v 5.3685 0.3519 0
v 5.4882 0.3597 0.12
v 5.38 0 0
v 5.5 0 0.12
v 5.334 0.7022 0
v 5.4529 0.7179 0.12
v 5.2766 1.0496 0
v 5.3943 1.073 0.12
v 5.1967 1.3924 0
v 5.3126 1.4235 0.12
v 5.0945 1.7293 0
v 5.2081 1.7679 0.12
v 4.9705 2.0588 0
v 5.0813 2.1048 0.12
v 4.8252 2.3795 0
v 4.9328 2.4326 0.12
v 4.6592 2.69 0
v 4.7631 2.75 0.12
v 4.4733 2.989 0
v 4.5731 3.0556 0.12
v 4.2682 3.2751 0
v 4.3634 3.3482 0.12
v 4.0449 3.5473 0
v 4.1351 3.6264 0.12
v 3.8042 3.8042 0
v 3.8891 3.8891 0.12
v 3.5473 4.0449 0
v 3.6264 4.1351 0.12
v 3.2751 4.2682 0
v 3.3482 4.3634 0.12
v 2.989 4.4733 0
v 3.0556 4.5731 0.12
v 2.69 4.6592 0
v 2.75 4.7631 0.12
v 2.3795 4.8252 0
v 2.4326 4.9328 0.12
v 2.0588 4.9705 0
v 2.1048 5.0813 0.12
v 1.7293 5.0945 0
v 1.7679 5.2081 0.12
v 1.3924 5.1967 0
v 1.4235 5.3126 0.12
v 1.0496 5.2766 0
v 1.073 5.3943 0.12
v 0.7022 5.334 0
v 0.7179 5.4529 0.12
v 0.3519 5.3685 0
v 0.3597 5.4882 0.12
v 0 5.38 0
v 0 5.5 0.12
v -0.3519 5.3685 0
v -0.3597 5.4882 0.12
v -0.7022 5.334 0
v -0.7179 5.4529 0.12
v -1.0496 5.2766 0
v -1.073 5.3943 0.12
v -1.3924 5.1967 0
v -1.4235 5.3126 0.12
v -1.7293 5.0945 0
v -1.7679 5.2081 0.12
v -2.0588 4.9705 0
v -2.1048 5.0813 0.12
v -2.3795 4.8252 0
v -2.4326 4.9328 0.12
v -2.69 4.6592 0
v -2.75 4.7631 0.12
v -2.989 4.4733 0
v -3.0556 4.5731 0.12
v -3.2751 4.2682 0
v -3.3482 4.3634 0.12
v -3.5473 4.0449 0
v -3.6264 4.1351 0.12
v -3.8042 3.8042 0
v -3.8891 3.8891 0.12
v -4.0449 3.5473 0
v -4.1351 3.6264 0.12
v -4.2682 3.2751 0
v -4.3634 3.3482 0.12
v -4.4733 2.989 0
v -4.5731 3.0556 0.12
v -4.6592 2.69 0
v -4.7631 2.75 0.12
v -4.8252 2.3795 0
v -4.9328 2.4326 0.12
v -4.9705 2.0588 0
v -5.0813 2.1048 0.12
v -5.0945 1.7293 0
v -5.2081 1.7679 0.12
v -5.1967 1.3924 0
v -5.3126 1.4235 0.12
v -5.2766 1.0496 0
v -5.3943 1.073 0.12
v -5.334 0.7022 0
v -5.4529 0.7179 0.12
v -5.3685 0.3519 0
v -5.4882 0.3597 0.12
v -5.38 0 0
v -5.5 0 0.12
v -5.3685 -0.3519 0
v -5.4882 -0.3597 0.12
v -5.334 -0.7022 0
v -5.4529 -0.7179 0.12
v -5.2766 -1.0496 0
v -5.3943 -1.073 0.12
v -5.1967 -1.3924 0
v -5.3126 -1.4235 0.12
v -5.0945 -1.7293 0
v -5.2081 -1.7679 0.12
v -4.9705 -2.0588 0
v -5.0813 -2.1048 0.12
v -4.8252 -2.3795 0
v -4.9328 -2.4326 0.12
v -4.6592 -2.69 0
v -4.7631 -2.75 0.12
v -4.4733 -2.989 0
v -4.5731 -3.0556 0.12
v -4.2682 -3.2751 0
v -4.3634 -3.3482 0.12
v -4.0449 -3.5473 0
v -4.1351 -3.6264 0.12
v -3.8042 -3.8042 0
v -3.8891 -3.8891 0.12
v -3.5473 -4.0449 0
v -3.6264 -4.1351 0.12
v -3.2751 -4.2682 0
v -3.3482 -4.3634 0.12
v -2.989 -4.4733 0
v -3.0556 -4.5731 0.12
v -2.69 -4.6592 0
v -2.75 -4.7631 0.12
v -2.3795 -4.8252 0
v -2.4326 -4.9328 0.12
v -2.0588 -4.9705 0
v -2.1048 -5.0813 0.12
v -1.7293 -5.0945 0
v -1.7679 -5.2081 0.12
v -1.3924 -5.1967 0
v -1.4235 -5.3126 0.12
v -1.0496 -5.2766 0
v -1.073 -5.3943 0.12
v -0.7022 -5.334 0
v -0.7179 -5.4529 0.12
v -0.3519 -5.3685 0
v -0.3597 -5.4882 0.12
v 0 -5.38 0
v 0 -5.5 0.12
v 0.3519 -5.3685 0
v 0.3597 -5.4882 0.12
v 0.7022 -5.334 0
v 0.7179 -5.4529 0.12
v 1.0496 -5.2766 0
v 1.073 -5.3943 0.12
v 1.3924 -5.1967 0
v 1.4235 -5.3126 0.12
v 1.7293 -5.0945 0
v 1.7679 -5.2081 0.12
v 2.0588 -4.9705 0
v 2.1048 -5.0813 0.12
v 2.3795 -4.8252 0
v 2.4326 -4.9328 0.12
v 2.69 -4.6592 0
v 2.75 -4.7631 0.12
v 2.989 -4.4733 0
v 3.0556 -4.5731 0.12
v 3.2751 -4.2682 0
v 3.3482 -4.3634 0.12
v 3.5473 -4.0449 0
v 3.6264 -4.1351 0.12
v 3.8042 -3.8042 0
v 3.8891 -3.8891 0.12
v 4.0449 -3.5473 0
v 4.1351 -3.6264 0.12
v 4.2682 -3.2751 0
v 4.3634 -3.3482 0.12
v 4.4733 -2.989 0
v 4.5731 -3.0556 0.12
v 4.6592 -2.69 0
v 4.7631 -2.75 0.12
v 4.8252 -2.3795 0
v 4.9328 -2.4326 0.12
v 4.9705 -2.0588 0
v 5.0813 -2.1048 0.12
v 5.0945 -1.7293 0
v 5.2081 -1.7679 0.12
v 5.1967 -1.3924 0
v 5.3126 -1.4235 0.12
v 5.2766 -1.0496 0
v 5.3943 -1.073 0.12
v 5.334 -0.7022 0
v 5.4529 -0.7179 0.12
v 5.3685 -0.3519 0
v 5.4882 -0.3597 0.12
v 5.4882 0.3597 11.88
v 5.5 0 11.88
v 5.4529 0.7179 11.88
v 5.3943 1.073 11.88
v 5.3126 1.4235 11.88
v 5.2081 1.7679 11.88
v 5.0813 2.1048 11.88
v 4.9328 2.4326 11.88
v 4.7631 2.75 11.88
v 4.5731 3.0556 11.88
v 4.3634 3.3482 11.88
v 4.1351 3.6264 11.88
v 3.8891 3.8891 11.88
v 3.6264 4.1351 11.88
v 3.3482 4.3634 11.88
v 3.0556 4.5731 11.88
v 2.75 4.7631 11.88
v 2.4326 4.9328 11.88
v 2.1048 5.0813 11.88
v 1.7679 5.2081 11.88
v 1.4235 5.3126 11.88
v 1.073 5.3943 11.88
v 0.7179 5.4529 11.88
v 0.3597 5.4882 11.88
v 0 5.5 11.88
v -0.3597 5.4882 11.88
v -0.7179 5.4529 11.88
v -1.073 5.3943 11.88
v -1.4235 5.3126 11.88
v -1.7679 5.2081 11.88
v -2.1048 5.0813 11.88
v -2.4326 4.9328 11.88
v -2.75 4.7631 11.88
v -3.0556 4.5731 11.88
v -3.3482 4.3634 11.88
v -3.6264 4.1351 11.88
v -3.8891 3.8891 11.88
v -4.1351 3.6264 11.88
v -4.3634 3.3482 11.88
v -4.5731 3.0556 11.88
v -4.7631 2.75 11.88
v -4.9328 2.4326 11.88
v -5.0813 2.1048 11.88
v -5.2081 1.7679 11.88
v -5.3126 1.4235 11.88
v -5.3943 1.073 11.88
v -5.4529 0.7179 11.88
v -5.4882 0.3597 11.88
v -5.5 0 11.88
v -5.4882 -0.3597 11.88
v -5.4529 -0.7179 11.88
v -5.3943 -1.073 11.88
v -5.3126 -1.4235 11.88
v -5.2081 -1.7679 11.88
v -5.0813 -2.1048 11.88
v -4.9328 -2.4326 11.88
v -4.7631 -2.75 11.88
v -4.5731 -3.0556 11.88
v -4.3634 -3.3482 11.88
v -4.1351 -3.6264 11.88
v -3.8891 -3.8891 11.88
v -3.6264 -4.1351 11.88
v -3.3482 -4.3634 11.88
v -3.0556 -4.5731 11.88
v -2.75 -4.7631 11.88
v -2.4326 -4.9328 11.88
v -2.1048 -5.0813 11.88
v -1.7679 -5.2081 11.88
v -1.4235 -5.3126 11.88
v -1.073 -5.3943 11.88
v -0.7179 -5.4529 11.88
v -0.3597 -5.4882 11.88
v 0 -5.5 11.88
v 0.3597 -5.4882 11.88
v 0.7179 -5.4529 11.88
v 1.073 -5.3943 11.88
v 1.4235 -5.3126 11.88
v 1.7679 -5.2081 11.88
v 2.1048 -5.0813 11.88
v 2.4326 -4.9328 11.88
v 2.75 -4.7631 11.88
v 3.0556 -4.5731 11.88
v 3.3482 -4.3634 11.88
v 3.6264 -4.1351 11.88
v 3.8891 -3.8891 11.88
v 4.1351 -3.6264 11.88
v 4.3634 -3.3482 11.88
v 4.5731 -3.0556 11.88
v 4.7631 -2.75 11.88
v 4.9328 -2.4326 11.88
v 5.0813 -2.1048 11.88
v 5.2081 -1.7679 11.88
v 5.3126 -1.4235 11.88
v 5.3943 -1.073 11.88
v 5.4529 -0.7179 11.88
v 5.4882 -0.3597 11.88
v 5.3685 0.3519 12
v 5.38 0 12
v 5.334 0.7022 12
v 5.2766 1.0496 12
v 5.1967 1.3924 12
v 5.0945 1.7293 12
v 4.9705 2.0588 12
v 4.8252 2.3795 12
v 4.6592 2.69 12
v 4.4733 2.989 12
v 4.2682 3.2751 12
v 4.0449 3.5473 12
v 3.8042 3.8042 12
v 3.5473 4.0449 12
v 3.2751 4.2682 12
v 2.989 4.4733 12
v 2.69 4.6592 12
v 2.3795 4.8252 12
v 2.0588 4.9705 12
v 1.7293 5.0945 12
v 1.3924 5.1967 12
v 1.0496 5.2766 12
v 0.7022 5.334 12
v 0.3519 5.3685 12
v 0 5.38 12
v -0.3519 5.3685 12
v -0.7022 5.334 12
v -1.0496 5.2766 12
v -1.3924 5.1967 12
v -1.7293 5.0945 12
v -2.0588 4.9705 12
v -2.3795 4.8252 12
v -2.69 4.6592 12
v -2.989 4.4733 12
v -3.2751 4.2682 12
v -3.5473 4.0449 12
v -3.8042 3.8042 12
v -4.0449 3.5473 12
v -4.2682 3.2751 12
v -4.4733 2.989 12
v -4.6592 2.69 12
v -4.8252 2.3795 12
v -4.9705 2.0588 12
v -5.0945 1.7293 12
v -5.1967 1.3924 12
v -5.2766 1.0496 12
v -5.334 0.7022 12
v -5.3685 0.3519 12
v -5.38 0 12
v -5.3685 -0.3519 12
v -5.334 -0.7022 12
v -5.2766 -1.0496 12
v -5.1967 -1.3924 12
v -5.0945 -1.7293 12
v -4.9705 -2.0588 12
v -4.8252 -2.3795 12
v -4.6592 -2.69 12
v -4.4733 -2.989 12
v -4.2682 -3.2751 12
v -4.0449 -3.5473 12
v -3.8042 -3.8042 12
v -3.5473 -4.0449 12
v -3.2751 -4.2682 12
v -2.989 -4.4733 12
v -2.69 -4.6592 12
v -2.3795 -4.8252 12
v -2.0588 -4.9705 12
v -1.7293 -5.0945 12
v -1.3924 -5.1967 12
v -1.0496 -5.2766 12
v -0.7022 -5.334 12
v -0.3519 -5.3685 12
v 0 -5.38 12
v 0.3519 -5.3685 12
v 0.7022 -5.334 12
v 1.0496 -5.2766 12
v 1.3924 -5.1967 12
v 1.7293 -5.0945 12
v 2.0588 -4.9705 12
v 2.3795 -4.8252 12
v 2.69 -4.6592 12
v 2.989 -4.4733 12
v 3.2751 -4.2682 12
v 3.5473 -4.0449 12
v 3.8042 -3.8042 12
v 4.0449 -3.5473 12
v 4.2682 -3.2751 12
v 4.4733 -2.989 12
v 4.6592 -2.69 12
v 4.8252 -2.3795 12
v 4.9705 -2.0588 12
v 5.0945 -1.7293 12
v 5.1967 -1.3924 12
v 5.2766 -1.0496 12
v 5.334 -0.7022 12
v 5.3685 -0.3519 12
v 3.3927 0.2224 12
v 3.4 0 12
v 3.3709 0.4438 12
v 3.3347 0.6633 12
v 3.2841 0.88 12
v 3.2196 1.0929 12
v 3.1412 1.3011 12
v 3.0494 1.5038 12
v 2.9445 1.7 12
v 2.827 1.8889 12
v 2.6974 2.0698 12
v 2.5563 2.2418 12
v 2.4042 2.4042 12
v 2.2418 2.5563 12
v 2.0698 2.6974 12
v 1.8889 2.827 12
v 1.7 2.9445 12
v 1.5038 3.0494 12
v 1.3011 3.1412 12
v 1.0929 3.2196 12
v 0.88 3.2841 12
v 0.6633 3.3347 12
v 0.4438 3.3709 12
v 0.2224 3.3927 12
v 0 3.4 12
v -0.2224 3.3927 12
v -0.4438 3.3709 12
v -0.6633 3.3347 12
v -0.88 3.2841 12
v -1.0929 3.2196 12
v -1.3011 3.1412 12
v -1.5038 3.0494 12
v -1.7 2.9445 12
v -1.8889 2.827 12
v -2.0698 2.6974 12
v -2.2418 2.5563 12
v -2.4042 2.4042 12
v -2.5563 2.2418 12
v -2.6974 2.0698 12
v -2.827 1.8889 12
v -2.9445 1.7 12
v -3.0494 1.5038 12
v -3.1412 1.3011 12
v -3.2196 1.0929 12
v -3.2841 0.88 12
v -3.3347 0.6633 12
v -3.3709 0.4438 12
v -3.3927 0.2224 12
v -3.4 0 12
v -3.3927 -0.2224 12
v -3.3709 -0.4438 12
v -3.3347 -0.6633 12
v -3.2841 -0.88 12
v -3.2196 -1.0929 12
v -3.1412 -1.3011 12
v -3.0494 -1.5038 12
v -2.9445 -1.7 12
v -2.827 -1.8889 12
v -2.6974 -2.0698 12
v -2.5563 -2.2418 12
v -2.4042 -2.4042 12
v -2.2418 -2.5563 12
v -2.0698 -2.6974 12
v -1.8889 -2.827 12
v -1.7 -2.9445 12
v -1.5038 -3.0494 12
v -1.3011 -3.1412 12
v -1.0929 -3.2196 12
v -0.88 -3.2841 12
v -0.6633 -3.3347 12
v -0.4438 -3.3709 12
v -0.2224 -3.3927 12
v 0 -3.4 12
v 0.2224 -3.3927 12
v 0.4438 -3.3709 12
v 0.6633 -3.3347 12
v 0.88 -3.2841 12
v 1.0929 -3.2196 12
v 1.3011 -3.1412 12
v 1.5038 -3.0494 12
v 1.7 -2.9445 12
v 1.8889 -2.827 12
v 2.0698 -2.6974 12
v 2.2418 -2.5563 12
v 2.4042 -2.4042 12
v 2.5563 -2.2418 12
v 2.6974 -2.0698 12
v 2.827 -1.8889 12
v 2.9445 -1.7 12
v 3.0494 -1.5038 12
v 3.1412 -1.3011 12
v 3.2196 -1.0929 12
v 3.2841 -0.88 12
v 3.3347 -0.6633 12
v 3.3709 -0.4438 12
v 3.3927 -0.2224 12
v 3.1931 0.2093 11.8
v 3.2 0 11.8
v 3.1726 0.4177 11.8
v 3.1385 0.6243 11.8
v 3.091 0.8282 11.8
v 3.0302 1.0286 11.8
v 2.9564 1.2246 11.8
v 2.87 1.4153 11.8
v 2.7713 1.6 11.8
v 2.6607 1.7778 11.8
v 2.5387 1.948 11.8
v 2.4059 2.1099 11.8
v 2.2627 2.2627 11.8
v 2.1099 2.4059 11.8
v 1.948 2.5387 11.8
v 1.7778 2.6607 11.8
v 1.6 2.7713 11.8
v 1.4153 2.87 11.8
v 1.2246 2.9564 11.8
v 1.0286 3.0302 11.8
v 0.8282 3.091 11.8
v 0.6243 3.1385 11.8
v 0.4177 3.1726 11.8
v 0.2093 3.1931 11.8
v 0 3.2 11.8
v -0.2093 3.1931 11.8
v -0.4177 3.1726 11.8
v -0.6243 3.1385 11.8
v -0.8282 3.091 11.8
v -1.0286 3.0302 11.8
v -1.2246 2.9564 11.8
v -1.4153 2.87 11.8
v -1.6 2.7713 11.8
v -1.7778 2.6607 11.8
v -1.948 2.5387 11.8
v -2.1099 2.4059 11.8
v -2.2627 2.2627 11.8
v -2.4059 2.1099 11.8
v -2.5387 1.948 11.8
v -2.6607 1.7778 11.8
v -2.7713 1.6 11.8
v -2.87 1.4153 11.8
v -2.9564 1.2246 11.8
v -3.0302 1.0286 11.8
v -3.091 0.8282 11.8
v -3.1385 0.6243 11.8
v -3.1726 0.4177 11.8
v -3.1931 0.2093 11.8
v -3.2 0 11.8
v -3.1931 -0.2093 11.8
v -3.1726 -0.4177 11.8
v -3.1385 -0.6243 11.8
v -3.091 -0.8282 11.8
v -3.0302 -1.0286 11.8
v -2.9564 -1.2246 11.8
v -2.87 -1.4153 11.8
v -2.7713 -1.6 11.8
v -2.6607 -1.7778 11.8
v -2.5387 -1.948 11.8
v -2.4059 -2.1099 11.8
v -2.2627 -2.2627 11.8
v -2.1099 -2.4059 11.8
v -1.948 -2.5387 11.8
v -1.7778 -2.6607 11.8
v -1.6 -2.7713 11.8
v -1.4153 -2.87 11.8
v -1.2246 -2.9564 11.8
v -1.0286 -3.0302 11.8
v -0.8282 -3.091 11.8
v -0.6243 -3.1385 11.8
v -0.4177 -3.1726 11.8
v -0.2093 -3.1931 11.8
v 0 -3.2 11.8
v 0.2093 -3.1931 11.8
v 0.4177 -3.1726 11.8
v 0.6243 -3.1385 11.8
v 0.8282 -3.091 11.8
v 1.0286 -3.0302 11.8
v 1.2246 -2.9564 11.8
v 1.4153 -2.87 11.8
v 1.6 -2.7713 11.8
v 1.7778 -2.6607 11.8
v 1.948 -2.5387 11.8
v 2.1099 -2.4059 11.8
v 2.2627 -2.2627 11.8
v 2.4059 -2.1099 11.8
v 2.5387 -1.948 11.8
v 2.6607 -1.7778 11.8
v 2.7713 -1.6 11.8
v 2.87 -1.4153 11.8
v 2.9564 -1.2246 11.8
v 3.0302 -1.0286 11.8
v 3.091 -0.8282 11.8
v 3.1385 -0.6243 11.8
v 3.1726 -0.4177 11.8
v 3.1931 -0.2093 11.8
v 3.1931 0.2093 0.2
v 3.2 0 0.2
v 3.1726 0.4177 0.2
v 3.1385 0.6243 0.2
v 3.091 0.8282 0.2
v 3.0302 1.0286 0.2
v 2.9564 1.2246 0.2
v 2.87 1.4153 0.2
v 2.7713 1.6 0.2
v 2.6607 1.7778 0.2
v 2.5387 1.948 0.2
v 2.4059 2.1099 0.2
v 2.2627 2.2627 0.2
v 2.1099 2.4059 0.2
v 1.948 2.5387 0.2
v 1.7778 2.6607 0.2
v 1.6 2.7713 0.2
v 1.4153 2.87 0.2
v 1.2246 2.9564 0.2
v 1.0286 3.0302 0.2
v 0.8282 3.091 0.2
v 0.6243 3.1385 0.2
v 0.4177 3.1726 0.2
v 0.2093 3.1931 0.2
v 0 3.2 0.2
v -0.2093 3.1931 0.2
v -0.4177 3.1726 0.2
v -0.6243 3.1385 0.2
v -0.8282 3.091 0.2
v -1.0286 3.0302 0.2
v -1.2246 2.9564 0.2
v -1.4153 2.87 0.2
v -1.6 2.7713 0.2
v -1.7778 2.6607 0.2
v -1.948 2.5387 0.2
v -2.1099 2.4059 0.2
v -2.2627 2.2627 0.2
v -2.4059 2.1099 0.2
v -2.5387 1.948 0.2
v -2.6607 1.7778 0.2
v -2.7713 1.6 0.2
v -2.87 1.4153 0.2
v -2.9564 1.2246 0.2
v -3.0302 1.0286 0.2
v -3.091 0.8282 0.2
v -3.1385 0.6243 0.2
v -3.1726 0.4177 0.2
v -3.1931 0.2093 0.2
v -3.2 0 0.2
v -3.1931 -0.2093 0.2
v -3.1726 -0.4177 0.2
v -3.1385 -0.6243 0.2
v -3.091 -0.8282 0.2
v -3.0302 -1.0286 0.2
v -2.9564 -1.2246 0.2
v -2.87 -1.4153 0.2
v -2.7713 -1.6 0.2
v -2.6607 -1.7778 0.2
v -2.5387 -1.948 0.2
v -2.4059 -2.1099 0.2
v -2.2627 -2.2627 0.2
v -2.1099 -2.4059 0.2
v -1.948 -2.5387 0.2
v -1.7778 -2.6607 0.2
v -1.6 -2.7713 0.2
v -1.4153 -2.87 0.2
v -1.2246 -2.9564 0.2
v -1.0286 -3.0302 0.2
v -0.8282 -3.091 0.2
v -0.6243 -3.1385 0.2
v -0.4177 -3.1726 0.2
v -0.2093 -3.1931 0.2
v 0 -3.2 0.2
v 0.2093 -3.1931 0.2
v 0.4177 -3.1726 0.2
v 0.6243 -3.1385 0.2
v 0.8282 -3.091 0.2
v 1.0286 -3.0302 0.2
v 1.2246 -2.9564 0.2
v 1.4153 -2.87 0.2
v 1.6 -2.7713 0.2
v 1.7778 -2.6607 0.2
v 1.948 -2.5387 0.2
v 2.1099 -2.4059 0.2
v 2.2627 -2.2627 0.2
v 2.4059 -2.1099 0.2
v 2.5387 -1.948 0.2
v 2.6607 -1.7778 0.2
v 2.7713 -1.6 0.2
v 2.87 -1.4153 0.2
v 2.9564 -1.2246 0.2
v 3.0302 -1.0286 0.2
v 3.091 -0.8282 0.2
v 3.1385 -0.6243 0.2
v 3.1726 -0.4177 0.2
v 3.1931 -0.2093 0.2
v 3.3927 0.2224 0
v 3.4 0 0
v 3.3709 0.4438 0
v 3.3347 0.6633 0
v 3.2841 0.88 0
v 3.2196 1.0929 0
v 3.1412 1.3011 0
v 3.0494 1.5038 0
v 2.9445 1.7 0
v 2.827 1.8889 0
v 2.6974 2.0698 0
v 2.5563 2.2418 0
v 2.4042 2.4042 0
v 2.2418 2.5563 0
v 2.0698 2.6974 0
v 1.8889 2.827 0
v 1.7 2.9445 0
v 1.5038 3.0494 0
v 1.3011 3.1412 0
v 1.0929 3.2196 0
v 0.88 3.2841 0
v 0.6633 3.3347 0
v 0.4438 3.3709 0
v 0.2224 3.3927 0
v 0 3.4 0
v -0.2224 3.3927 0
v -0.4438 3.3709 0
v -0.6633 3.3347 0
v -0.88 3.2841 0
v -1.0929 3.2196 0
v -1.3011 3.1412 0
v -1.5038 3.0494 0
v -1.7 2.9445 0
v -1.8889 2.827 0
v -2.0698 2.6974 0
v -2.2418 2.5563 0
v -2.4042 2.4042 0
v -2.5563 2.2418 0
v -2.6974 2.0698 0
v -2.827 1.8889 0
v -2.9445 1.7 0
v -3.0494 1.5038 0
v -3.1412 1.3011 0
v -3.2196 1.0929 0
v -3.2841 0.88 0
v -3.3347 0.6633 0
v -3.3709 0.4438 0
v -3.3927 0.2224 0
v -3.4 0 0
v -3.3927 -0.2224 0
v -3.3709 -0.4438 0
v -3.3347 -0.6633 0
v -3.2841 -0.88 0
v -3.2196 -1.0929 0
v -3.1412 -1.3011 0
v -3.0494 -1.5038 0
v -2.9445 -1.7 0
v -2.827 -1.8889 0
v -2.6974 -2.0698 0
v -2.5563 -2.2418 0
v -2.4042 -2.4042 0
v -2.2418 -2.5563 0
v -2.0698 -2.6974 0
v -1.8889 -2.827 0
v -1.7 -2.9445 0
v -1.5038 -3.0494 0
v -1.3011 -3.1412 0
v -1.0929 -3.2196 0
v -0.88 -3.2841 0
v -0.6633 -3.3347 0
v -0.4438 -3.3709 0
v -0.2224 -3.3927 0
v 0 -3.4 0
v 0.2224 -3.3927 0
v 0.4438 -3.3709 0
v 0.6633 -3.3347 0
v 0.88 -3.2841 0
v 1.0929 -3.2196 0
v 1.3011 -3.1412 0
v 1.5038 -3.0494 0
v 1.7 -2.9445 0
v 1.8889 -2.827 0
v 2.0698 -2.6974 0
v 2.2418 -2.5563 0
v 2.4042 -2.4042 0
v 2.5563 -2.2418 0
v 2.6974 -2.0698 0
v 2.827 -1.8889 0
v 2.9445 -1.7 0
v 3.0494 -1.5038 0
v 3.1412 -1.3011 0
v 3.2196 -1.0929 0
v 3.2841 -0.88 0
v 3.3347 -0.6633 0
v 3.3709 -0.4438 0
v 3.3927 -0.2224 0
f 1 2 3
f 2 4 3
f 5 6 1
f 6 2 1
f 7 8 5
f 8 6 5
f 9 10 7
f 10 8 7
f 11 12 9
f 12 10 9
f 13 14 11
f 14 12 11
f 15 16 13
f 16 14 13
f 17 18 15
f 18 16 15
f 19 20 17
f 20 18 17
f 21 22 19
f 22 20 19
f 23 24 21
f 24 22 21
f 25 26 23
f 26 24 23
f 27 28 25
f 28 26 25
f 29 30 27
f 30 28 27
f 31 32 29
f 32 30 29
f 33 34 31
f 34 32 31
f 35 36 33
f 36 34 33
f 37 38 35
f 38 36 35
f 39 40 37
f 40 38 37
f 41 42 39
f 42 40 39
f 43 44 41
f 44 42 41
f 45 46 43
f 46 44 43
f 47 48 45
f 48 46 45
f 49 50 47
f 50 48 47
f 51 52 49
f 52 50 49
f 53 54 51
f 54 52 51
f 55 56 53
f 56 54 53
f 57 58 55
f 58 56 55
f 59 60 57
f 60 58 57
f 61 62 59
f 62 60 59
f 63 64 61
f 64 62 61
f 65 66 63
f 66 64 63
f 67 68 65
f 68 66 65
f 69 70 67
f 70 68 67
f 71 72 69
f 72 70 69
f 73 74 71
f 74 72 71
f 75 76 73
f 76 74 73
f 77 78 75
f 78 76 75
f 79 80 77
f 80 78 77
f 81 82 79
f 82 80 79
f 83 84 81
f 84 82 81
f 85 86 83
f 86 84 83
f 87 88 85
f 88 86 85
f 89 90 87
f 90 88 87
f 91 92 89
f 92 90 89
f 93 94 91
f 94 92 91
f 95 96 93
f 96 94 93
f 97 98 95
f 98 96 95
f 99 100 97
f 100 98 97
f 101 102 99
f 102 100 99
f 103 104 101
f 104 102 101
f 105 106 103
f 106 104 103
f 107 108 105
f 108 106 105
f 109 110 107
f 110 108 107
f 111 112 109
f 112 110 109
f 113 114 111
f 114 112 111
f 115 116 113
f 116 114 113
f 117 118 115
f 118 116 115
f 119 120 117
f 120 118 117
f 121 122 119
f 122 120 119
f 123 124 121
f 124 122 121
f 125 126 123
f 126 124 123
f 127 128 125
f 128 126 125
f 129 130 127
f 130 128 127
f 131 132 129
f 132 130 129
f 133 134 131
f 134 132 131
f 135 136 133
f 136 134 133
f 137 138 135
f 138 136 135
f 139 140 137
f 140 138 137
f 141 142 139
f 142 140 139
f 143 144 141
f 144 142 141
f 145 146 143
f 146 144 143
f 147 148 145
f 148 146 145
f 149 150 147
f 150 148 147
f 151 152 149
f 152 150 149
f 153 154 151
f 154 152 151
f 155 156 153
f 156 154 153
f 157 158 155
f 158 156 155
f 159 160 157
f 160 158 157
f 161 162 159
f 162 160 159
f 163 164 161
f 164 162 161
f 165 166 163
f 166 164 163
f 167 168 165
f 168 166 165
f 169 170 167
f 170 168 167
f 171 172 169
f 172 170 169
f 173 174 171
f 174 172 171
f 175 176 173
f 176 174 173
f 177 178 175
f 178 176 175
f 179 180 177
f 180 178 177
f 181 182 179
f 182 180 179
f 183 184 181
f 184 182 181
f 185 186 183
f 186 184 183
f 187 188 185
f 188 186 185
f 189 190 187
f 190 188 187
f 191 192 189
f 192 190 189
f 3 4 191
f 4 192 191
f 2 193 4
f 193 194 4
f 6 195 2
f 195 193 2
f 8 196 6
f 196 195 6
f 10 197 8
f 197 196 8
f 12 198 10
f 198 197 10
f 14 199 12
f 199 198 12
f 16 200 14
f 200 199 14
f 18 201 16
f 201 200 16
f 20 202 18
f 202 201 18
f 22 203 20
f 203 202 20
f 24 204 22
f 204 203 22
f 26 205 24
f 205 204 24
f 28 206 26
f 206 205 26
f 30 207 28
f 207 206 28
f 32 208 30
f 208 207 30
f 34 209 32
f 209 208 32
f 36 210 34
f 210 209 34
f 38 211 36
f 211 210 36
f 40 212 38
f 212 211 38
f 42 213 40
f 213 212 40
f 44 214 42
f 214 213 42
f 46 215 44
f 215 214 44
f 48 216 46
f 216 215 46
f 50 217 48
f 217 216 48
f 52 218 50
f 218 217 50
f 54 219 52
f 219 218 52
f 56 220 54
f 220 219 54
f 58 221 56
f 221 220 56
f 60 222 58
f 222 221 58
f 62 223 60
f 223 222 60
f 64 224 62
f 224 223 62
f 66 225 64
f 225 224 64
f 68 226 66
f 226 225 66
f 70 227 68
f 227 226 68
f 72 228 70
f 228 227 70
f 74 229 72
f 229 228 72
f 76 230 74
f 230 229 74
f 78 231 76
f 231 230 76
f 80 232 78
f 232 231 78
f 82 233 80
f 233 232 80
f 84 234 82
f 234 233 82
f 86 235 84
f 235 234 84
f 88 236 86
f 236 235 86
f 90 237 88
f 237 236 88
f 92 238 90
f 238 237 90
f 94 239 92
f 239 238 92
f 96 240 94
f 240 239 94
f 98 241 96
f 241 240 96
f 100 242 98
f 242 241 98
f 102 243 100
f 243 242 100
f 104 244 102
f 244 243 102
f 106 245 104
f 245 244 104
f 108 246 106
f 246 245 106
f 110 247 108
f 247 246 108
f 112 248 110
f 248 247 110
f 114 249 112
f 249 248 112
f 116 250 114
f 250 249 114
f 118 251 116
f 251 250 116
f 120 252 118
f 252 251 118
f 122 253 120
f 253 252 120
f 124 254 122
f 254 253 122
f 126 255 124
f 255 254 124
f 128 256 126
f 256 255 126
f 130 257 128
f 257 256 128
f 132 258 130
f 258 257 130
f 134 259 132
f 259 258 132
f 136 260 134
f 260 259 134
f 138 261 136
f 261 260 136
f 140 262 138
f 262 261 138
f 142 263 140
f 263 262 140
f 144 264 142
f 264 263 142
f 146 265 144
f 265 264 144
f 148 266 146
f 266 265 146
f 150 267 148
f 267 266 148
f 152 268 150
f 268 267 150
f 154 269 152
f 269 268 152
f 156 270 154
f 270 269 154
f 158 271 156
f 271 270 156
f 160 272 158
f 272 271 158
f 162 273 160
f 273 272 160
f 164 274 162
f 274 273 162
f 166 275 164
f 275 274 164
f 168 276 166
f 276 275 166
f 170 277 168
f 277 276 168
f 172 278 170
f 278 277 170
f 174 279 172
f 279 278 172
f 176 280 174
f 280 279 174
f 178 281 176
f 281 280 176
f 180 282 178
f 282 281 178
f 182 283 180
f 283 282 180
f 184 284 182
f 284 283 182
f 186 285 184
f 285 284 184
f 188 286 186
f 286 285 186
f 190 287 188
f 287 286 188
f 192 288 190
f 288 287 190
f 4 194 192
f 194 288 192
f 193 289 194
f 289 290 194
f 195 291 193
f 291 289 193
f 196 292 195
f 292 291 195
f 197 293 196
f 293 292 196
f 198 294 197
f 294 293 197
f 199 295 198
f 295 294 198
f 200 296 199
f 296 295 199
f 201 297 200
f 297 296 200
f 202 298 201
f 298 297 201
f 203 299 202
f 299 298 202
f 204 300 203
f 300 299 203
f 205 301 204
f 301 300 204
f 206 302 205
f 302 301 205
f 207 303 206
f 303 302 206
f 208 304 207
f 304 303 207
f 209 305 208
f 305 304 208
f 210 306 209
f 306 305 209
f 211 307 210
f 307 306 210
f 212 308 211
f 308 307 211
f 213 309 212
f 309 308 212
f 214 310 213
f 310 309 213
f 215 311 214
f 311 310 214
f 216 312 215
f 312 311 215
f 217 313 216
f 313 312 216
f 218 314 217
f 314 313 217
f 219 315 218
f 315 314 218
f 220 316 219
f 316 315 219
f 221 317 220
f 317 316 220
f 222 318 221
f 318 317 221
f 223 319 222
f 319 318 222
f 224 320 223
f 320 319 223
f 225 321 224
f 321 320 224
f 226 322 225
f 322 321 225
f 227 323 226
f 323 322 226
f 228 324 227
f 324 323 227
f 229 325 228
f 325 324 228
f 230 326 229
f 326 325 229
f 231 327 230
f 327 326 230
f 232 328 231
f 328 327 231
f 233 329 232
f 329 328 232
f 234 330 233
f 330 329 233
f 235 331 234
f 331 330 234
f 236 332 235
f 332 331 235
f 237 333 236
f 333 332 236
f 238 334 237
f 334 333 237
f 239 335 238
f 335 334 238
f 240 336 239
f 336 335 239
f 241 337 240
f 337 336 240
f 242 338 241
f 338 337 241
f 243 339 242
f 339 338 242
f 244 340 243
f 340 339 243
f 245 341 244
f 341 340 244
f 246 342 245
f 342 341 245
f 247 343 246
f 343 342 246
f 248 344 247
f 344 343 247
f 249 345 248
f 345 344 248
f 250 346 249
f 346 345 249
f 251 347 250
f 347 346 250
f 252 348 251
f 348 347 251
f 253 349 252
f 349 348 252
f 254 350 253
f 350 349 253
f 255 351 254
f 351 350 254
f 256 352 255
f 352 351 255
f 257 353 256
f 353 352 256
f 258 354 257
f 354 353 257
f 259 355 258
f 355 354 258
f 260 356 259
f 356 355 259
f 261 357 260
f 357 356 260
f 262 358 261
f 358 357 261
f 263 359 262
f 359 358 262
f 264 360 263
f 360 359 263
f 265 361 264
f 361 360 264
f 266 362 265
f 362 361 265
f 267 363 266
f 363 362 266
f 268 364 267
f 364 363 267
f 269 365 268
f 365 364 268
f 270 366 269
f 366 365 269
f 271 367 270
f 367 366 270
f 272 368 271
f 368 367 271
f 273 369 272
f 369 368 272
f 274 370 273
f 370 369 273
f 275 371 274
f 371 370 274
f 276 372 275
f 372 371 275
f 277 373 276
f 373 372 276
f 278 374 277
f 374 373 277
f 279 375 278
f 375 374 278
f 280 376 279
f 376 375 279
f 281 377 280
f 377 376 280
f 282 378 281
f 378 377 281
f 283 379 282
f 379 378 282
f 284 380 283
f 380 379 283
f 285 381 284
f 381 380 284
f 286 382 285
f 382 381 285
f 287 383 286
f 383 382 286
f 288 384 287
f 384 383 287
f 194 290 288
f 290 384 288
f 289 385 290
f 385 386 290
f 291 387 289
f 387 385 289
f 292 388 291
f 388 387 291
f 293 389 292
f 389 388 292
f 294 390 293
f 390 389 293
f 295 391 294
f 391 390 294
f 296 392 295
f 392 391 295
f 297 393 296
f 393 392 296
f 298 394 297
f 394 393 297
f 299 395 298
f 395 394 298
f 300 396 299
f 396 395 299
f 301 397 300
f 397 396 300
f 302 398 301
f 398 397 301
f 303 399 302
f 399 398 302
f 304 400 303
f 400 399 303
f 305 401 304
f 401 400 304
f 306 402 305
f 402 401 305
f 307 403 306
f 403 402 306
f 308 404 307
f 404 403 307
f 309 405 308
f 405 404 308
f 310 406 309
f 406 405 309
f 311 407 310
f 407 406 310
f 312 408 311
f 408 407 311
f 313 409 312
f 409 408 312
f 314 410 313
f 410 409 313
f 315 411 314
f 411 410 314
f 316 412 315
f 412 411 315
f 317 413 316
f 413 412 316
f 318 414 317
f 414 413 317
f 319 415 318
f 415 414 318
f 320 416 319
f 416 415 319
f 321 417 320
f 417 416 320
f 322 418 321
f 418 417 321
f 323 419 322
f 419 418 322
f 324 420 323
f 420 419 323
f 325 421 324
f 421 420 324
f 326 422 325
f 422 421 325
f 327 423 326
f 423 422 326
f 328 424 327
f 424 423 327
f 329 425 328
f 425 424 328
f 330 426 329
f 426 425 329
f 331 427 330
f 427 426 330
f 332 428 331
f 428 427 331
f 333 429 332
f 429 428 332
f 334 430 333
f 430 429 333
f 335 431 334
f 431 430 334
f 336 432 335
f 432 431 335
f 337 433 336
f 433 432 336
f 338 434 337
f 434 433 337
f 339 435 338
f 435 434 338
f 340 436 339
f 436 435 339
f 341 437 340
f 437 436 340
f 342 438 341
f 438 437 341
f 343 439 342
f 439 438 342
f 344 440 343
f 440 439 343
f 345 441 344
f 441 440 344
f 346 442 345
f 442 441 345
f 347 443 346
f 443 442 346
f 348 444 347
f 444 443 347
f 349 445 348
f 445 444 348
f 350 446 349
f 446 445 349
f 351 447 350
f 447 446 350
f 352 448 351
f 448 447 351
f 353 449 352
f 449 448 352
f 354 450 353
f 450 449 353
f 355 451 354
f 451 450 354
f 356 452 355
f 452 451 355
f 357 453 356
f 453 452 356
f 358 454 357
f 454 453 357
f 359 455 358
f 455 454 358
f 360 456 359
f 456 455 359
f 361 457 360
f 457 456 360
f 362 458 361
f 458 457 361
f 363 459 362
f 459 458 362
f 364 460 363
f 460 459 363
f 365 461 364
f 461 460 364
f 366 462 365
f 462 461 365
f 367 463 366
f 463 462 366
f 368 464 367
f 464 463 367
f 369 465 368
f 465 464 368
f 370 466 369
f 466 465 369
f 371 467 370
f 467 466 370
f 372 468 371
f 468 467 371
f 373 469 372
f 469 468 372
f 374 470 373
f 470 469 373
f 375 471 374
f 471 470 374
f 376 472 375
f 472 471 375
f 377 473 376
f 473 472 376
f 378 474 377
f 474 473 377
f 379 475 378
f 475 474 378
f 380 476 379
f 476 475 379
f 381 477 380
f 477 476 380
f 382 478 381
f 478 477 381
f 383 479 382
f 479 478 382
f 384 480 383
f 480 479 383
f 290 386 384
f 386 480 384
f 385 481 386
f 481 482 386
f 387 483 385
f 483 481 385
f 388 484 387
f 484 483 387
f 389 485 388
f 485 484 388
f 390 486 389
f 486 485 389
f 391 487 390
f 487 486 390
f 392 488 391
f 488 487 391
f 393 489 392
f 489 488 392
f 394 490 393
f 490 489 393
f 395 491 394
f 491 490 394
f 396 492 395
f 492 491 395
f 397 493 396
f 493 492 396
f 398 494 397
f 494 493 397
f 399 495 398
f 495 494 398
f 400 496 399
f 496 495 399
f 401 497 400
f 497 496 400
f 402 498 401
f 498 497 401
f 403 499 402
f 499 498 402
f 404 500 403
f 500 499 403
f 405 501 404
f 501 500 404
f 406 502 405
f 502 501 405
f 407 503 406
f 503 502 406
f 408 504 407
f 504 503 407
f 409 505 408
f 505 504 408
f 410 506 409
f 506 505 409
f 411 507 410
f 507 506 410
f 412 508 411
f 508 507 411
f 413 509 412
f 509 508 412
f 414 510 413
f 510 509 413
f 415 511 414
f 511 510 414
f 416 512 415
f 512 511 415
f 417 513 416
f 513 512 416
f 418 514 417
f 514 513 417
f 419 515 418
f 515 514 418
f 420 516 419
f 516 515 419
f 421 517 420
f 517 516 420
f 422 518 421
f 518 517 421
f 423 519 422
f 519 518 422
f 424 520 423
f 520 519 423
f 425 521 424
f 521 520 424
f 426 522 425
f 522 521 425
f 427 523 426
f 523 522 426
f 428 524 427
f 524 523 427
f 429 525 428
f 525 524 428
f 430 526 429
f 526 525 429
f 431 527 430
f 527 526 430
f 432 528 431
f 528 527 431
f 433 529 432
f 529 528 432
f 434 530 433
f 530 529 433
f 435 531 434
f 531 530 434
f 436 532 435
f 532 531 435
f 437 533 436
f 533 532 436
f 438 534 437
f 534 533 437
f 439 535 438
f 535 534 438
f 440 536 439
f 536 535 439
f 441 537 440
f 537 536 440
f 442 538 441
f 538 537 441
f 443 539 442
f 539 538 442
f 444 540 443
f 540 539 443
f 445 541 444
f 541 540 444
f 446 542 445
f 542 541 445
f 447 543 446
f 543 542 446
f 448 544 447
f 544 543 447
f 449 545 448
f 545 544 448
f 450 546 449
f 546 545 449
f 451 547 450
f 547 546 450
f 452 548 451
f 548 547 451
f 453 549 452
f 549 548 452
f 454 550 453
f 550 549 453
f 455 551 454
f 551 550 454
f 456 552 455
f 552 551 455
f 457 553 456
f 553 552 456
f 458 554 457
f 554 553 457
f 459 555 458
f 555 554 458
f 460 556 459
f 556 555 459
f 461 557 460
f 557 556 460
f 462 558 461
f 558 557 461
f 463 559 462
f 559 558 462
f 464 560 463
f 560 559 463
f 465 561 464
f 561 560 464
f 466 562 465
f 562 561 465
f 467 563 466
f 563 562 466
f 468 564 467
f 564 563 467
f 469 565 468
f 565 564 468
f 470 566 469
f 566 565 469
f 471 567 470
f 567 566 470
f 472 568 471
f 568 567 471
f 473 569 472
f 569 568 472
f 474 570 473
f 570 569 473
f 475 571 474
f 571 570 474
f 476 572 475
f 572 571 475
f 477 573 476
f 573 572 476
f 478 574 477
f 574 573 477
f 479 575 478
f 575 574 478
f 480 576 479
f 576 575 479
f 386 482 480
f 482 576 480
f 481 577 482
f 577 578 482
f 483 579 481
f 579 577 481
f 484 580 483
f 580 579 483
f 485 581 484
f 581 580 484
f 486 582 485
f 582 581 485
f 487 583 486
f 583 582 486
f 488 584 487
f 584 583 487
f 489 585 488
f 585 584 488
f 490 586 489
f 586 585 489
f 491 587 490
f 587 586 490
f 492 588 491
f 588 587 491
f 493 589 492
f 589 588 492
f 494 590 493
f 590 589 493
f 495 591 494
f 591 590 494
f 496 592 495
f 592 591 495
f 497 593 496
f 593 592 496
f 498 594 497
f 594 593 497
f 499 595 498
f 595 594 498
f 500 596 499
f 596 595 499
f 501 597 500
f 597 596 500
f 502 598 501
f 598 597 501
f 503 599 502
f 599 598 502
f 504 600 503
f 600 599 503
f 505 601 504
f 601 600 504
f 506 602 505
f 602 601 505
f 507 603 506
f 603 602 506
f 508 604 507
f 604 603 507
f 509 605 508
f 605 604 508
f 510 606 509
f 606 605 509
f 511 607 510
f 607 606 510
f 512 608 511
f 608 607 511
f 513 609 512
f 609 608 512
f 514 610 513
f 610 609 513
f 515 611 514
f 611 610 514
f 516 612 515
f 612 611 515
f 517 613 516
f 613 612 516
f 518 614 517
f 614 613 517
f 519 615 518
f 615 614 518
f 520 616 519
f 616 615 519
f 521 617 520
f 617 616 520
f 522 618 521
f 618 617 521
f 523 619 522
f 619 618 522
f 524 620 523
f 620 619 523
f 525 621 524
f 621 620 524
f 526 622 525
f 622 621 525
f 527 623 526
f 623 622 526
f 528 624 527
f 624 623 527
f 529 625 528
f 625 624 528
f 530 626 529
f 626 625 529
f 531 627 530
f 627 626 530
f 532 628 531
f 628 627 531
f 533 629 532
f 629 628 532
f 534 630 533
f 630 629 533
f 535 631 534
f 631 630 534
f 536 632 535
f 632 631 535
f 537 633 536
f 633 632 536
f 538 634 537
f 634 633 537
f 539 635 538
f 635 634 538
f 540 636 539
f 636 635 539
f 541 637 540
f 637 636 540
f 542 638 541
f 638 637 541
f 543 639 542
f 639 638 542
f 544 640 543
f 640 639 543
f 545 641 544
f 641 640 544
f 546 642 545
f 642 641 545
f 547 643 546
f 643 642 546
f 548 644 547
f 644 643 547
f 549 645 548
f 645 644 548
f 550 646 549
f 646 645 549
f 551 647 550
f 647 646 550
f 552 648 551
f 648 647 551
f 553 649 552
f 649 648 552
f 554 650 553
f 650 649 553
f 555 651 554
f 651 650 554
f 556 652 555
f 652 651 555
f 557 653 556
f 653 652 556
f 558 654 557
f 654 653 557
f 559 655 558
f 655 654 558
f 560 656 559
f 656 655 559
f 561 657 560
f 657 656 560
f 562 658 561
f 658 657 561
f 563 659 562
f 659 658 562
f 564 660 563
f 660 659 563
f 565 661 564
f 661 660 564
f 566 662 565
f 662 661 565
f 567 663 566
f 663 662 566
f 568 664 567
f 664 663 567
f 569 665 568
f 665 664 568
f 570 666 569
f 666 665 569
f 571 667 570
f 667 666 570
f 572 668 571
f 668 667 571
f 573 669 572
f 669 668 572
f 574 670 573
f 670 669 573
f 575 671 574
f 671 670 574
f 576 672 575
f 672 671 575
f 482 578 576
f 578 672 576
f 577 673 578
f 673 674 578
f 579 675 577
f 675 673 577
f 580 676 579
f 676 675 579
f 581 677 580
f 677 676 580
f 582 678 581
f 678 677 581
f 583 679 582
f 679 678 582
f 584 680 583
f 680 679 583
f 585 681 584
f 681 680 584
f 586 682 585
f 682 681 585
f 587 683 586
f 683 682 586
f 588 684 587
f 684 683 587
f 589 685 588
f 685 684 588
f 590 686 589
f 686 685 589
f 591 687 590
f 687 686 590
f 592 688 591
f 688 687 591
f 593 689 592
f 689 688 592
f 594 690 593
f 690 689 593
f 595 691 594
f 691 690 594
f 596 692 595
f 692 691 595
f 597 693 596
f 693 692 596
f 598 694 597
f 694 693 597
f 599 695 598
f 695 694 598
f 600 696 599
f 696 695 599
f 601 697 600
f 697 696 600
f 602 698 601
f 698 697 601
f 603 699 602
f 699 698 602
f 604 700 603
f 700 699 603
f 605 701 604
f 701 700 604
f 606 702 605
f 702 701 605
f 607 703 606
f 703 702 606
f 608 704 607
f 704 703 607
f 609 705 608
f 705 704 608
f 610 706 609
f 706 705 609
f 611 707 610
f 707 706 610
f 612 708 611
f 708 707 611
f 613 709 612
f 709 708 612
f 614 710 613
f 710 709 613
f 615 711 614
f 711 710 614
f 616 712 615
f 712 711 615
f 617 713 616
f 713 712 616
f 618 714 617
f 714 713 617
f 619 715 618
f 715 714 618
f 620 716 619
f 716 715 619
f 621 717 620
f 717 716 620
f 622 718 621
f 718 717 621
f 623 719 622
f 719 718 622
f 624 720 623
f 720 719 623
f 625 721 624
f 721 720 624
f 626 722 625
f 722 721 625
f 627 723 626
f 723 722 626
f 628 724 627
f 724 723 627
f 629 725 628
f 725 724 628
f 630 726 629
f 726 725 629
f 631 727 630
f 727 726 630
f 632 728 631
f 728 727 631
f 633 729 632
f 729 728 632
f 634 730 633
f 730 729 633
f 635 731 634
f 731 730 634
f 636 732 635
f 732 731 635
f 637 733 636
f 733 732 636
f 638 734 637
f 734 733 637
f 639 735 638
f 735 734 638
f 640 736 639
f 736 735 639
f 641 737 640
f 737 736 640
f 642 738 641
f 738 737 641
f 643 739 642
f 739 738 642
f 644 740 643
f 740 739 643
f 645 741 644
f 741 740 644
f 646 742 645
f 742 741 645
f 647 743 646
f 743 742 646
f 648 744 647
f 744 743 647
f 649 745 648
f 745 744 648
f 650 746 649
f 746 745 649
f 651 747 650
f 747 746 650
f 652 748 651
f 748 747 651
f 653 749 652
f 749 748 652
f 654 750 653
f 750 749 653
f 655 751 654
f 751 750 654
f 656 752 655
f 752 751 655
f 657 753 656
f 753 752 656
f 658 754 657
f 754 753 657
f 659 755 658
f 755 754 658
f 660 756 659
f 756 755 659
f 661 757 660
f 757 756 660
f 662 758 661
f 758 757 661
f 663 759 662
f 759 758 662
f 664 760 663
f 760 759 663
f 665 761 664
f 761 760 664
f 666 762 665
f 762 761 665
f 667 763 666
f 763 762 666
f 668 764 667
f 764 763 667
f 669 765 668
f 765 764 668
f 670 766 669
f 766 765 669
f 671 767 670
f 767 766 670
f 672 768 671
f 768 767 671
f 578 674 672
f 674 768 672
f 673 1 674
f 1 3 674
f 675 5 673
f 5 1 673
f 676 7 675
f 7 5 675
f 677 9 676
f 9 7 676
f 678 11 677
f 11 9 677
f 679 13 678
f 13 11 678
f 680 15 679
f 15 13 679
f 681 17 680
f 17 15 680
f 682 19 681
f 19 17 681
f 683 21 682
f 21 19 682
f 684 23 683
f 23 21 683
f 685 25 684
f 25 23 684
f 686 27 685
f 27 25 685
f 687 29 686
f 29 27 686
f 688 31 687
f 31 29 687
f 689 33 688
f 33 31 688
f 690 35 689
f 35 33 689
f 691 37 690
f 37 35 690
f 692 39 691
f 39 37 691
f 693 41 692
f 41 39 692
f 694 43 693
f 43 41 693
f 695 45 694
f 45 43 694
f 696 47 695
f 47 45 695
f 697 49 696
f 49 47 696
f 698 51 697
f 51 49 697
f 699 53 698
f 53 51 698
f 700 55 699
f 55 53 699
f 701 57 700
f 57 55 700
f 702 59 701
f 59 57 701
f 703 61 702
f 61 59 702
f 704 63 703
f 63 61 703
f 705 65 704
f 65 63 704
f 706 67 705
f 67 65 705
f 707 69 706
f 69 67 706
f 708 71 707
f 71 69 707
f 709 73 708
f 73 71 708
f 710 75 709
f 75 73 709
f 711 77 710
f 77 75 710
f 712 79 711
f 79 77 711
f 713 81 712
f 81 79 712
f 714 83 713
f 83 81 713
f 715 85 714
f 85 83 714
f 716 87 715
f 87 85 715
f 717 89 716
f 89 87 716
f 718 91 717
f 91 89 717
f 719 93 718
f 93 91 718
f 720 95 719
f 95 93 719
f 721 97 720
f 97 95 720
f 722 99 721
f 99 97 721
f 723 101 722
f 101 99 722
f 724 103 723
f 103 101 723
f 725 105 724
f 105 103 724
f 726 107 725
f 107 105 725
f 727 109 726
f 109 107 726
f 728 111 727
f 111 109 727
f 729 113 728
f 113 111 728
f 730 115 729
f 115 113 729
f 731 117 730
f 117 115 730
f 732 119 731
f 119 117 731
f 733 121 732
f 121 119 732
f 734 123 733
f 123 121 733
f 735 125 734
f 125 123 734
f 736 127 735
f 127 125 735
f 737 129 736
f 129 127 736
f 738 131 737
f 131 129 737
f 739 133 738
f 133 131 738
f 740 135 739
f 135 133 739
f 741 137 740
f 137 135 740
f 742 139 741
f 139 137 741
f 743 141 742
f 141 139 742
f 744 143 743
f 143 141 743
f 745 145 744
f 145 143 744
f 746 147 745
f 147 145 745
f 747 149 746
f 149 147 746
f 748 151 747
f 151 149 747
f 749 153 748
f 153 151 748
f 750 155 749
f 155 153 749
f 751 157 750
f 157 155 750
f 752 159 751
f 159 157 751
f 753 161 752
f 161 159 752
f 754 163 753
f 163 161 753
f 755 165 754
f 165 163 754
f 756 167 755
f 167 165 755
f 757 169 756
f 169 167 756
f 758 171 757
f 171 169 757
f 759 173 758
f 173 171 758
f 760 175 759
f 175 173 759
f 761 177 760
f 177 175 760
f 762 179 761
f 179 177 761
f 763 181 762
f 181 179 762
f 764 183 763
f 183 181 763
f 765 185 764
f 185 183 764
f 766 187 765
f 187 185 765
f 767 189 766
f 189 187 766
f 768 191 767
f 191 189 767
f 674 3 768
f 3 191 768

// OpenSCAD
// OOMP generic catalogue model; units: mm.
// Stud length is additional to body depth. Tapping depths are model assumptions.
variant = "full"; // [full, display]
family = "spacer";
connection_type = "plain";
depth_mm = 12;
stud_length_mm = 0;
tapped_depth_mm = 0;
bore_mm = 6.4;
outer_diameter_mm = 11;
across_flats_mm = 6;
thread_nominal_diameter_mm = 3;
thread_pitch_mm = 0.5;
edge_chamfer_mm = 0.12;
mouth_chamfer_mm = 0.2;
angular_segments = 96;
samples_per_pitch = 16;

// Boundary travels up the outside, then down any tapped/plain bore.
// Equal-height rings at shoulders form the annular shoulder faces.
n = angular_segments;
threaded = family == "standoff";
has_stud = connection_type == "stud_to_tapped" || connection_type == "stud_to_stud";
two_studs = connection_type == "stud_to_stud";
through = !threaded || connection_type == "tapped_to_tapped";
pitch = thread_pitch_mm;
diameter = threaded ? thread_nominal_diameter_mm : bore_mm;
minor = diameter - 5*sqrt(3)*pitch/8;
transition = mouth_chamfer_mm + (threaded ? 5*sqrt(3)*pitch/16 : 0);
tip_chamfer = mouth_chamfer_mm + 17*sqrt(3)*pitch/48;
function sorted(v) = len(v)<=1 ? v : let(p=v[0])
    concat(sorted([for(x=v) if(x<p-1e-8) x]), [p], sorted([for(x=v) if(x>p+1e-8) x]));
function reverse(v) = [for(i=[len(v)-1:-1:0]) v[i]];
function theta(i) = i*360/n;
function fract(x) = x-floor(x);
function phase_distance(i,z) = abs(fract(z/pitch-theta(i)/360+0.5)-0.5);
function thread_r(i,z) = minor/2 + min(5*sqrt(3)*pitch/16,
    max(0,(phase_distance(i,z)-0.125)*pitch*sqrt(3)));
function stud_r(i,z,tip) = min(diameter/2 - (variant=="full" ?
    min(17*sqrt(3)*pitch/48,max(0,(phase_distance(i,z)-0.0625)*pitch*sqrt(3))) : 0),
    diameter/2-tip_chamfer+abs(z-tip));
function body_r(i,z) = (threaded ? across_flats_mm/2/cos(theta(i)%60-30) : outer_diameter_mm/2)
    - max(0,edge_chamfer_mm-min(z,depth_mm-z));
function bore_r(i,z) = max(threaded ? (variant=="full" ? thread_r(i,z) : minor/2) : diameter/2,
    diameter/2+mouth_chamfer_mm-(through ? min(z,depth_mm-z) : depth_mm-z));
function stud_z(a,b,tip) = let(count=variant=="full" ? ceil(stud_length_mm/pitch*samples_per_pitch) : 1)
    sorted(concat([for(i=[0:count]) a+(b-a)*i/count], [tip==a ? tip+tip_chamfer : tip-tip_chamfer]));
body_z = sorted([0,edge_chamfer_mm,depth_mm-edge_chamfer_mm,depth_mm]);
low = through ? 0 : depth_mm-tapped_depth_mm;
count = threaded && variant=="full" ? ceil((depth_mm-low)/pitch*samples_per_pitch) : 1;
bore_z = two_studs ? [] : reverse(sorted(concat(
    [for(i=[0:count]) low+(depth_mm-low)*i/count],
    [depth_mm-mouth_chamfer_mm,depth_mm-transition],
    through ? [mouth_chamfer_mm,transition] : [])));
// Ring descriptors: [height, kind, tip]. Kind: 0 body, 1 stud, 2 bore.
rings = concat(
    has_stud ? [for(z=stud_z(-stud_length_mm,0,-stud_length_mm)) [z,1,-stud_length_mm]] : [],
    [for(z=body_z) [z,0,0]],
    two_studs ? [for(z=stud_z(depth_mm,depth_mm+stud_length_mm,depth_mm+stud_length_mm)) [z,1,depth_mm+stud_length_mm]] : [],
    [for(z=bore_z) [z,2,0]]);
function radius(i,ring) = ring[1]==0 ? body_r(i,ring[0]) :
    ring[1]==1 ? stud_r(i,ring[0],ring[2]) : bore_r(i,ring[0]);
points = concat([for(ring=rings) for(i=[0:n-1])
    [radius(i,ring)*cos(theta(i)),radius(i,ring)*sin(theta(i)),ring[0]]],
    through ? [] : [[0,0,rings[0][0]],[0,0,rings[len(rings)-1][0]]]);
center = len(rings)*n;
last = (len(rings)-1)*n;
// OpenSCAD winding is opposite to STL winding.
faces = concat(
    [for(j=[0:len(rings)-(through ? 1 : 2)]) for(i=[0:n-1]) each
        let(a=j*n+i,b=j*n+(i+1)%n,c=((j+1)%len(rings))*n+(i+1)%n,d=((j+1)%len(rings))*n+i)
        [[a,c,b],[a,d,c]]],
    through ? [] : [for(i=[0:n-1]) each let(k=(i+1)%n)
        [[center,i,k],[center+1,last+k,last+i]]]);
assert(family=="spacer" || family=="standoff");
assert(!threaded || connection_type=="tapped_to_tapped" || has_stud);
assert(depth_mm>0 && diameter>0 && pitch>0);
assert(variant=="full" || variant=="display");
assert(n>=24 && n%12==0 && samples_per_pitch>=8);
assert(mouth_chamfer_mm>0 && mouth_chamfer_mm<depth_mm/2);
assert(edge_chamfer_mm>=0 && edge_chamfer_mm<depth_mm/2);
assert(diameter+4*max(mouth_chamfer_mm,edge_chamfer_mm) < (threaded ? across_flats_mm : outer_diameter_mm));
assert(!has_stud || stud_length_mm>2*mouth_chamfer_mm);
assert(!through || !threaded || 2*transition<depth_mm);
assert(connection_type!="stud_to_tapped" || (tapped_depth_mm>transition && tapped_depth_mm<depth_mm));
color([0.86,0.85,0.81]) polyhedron(points=points,faces=faces,convexity=20);
